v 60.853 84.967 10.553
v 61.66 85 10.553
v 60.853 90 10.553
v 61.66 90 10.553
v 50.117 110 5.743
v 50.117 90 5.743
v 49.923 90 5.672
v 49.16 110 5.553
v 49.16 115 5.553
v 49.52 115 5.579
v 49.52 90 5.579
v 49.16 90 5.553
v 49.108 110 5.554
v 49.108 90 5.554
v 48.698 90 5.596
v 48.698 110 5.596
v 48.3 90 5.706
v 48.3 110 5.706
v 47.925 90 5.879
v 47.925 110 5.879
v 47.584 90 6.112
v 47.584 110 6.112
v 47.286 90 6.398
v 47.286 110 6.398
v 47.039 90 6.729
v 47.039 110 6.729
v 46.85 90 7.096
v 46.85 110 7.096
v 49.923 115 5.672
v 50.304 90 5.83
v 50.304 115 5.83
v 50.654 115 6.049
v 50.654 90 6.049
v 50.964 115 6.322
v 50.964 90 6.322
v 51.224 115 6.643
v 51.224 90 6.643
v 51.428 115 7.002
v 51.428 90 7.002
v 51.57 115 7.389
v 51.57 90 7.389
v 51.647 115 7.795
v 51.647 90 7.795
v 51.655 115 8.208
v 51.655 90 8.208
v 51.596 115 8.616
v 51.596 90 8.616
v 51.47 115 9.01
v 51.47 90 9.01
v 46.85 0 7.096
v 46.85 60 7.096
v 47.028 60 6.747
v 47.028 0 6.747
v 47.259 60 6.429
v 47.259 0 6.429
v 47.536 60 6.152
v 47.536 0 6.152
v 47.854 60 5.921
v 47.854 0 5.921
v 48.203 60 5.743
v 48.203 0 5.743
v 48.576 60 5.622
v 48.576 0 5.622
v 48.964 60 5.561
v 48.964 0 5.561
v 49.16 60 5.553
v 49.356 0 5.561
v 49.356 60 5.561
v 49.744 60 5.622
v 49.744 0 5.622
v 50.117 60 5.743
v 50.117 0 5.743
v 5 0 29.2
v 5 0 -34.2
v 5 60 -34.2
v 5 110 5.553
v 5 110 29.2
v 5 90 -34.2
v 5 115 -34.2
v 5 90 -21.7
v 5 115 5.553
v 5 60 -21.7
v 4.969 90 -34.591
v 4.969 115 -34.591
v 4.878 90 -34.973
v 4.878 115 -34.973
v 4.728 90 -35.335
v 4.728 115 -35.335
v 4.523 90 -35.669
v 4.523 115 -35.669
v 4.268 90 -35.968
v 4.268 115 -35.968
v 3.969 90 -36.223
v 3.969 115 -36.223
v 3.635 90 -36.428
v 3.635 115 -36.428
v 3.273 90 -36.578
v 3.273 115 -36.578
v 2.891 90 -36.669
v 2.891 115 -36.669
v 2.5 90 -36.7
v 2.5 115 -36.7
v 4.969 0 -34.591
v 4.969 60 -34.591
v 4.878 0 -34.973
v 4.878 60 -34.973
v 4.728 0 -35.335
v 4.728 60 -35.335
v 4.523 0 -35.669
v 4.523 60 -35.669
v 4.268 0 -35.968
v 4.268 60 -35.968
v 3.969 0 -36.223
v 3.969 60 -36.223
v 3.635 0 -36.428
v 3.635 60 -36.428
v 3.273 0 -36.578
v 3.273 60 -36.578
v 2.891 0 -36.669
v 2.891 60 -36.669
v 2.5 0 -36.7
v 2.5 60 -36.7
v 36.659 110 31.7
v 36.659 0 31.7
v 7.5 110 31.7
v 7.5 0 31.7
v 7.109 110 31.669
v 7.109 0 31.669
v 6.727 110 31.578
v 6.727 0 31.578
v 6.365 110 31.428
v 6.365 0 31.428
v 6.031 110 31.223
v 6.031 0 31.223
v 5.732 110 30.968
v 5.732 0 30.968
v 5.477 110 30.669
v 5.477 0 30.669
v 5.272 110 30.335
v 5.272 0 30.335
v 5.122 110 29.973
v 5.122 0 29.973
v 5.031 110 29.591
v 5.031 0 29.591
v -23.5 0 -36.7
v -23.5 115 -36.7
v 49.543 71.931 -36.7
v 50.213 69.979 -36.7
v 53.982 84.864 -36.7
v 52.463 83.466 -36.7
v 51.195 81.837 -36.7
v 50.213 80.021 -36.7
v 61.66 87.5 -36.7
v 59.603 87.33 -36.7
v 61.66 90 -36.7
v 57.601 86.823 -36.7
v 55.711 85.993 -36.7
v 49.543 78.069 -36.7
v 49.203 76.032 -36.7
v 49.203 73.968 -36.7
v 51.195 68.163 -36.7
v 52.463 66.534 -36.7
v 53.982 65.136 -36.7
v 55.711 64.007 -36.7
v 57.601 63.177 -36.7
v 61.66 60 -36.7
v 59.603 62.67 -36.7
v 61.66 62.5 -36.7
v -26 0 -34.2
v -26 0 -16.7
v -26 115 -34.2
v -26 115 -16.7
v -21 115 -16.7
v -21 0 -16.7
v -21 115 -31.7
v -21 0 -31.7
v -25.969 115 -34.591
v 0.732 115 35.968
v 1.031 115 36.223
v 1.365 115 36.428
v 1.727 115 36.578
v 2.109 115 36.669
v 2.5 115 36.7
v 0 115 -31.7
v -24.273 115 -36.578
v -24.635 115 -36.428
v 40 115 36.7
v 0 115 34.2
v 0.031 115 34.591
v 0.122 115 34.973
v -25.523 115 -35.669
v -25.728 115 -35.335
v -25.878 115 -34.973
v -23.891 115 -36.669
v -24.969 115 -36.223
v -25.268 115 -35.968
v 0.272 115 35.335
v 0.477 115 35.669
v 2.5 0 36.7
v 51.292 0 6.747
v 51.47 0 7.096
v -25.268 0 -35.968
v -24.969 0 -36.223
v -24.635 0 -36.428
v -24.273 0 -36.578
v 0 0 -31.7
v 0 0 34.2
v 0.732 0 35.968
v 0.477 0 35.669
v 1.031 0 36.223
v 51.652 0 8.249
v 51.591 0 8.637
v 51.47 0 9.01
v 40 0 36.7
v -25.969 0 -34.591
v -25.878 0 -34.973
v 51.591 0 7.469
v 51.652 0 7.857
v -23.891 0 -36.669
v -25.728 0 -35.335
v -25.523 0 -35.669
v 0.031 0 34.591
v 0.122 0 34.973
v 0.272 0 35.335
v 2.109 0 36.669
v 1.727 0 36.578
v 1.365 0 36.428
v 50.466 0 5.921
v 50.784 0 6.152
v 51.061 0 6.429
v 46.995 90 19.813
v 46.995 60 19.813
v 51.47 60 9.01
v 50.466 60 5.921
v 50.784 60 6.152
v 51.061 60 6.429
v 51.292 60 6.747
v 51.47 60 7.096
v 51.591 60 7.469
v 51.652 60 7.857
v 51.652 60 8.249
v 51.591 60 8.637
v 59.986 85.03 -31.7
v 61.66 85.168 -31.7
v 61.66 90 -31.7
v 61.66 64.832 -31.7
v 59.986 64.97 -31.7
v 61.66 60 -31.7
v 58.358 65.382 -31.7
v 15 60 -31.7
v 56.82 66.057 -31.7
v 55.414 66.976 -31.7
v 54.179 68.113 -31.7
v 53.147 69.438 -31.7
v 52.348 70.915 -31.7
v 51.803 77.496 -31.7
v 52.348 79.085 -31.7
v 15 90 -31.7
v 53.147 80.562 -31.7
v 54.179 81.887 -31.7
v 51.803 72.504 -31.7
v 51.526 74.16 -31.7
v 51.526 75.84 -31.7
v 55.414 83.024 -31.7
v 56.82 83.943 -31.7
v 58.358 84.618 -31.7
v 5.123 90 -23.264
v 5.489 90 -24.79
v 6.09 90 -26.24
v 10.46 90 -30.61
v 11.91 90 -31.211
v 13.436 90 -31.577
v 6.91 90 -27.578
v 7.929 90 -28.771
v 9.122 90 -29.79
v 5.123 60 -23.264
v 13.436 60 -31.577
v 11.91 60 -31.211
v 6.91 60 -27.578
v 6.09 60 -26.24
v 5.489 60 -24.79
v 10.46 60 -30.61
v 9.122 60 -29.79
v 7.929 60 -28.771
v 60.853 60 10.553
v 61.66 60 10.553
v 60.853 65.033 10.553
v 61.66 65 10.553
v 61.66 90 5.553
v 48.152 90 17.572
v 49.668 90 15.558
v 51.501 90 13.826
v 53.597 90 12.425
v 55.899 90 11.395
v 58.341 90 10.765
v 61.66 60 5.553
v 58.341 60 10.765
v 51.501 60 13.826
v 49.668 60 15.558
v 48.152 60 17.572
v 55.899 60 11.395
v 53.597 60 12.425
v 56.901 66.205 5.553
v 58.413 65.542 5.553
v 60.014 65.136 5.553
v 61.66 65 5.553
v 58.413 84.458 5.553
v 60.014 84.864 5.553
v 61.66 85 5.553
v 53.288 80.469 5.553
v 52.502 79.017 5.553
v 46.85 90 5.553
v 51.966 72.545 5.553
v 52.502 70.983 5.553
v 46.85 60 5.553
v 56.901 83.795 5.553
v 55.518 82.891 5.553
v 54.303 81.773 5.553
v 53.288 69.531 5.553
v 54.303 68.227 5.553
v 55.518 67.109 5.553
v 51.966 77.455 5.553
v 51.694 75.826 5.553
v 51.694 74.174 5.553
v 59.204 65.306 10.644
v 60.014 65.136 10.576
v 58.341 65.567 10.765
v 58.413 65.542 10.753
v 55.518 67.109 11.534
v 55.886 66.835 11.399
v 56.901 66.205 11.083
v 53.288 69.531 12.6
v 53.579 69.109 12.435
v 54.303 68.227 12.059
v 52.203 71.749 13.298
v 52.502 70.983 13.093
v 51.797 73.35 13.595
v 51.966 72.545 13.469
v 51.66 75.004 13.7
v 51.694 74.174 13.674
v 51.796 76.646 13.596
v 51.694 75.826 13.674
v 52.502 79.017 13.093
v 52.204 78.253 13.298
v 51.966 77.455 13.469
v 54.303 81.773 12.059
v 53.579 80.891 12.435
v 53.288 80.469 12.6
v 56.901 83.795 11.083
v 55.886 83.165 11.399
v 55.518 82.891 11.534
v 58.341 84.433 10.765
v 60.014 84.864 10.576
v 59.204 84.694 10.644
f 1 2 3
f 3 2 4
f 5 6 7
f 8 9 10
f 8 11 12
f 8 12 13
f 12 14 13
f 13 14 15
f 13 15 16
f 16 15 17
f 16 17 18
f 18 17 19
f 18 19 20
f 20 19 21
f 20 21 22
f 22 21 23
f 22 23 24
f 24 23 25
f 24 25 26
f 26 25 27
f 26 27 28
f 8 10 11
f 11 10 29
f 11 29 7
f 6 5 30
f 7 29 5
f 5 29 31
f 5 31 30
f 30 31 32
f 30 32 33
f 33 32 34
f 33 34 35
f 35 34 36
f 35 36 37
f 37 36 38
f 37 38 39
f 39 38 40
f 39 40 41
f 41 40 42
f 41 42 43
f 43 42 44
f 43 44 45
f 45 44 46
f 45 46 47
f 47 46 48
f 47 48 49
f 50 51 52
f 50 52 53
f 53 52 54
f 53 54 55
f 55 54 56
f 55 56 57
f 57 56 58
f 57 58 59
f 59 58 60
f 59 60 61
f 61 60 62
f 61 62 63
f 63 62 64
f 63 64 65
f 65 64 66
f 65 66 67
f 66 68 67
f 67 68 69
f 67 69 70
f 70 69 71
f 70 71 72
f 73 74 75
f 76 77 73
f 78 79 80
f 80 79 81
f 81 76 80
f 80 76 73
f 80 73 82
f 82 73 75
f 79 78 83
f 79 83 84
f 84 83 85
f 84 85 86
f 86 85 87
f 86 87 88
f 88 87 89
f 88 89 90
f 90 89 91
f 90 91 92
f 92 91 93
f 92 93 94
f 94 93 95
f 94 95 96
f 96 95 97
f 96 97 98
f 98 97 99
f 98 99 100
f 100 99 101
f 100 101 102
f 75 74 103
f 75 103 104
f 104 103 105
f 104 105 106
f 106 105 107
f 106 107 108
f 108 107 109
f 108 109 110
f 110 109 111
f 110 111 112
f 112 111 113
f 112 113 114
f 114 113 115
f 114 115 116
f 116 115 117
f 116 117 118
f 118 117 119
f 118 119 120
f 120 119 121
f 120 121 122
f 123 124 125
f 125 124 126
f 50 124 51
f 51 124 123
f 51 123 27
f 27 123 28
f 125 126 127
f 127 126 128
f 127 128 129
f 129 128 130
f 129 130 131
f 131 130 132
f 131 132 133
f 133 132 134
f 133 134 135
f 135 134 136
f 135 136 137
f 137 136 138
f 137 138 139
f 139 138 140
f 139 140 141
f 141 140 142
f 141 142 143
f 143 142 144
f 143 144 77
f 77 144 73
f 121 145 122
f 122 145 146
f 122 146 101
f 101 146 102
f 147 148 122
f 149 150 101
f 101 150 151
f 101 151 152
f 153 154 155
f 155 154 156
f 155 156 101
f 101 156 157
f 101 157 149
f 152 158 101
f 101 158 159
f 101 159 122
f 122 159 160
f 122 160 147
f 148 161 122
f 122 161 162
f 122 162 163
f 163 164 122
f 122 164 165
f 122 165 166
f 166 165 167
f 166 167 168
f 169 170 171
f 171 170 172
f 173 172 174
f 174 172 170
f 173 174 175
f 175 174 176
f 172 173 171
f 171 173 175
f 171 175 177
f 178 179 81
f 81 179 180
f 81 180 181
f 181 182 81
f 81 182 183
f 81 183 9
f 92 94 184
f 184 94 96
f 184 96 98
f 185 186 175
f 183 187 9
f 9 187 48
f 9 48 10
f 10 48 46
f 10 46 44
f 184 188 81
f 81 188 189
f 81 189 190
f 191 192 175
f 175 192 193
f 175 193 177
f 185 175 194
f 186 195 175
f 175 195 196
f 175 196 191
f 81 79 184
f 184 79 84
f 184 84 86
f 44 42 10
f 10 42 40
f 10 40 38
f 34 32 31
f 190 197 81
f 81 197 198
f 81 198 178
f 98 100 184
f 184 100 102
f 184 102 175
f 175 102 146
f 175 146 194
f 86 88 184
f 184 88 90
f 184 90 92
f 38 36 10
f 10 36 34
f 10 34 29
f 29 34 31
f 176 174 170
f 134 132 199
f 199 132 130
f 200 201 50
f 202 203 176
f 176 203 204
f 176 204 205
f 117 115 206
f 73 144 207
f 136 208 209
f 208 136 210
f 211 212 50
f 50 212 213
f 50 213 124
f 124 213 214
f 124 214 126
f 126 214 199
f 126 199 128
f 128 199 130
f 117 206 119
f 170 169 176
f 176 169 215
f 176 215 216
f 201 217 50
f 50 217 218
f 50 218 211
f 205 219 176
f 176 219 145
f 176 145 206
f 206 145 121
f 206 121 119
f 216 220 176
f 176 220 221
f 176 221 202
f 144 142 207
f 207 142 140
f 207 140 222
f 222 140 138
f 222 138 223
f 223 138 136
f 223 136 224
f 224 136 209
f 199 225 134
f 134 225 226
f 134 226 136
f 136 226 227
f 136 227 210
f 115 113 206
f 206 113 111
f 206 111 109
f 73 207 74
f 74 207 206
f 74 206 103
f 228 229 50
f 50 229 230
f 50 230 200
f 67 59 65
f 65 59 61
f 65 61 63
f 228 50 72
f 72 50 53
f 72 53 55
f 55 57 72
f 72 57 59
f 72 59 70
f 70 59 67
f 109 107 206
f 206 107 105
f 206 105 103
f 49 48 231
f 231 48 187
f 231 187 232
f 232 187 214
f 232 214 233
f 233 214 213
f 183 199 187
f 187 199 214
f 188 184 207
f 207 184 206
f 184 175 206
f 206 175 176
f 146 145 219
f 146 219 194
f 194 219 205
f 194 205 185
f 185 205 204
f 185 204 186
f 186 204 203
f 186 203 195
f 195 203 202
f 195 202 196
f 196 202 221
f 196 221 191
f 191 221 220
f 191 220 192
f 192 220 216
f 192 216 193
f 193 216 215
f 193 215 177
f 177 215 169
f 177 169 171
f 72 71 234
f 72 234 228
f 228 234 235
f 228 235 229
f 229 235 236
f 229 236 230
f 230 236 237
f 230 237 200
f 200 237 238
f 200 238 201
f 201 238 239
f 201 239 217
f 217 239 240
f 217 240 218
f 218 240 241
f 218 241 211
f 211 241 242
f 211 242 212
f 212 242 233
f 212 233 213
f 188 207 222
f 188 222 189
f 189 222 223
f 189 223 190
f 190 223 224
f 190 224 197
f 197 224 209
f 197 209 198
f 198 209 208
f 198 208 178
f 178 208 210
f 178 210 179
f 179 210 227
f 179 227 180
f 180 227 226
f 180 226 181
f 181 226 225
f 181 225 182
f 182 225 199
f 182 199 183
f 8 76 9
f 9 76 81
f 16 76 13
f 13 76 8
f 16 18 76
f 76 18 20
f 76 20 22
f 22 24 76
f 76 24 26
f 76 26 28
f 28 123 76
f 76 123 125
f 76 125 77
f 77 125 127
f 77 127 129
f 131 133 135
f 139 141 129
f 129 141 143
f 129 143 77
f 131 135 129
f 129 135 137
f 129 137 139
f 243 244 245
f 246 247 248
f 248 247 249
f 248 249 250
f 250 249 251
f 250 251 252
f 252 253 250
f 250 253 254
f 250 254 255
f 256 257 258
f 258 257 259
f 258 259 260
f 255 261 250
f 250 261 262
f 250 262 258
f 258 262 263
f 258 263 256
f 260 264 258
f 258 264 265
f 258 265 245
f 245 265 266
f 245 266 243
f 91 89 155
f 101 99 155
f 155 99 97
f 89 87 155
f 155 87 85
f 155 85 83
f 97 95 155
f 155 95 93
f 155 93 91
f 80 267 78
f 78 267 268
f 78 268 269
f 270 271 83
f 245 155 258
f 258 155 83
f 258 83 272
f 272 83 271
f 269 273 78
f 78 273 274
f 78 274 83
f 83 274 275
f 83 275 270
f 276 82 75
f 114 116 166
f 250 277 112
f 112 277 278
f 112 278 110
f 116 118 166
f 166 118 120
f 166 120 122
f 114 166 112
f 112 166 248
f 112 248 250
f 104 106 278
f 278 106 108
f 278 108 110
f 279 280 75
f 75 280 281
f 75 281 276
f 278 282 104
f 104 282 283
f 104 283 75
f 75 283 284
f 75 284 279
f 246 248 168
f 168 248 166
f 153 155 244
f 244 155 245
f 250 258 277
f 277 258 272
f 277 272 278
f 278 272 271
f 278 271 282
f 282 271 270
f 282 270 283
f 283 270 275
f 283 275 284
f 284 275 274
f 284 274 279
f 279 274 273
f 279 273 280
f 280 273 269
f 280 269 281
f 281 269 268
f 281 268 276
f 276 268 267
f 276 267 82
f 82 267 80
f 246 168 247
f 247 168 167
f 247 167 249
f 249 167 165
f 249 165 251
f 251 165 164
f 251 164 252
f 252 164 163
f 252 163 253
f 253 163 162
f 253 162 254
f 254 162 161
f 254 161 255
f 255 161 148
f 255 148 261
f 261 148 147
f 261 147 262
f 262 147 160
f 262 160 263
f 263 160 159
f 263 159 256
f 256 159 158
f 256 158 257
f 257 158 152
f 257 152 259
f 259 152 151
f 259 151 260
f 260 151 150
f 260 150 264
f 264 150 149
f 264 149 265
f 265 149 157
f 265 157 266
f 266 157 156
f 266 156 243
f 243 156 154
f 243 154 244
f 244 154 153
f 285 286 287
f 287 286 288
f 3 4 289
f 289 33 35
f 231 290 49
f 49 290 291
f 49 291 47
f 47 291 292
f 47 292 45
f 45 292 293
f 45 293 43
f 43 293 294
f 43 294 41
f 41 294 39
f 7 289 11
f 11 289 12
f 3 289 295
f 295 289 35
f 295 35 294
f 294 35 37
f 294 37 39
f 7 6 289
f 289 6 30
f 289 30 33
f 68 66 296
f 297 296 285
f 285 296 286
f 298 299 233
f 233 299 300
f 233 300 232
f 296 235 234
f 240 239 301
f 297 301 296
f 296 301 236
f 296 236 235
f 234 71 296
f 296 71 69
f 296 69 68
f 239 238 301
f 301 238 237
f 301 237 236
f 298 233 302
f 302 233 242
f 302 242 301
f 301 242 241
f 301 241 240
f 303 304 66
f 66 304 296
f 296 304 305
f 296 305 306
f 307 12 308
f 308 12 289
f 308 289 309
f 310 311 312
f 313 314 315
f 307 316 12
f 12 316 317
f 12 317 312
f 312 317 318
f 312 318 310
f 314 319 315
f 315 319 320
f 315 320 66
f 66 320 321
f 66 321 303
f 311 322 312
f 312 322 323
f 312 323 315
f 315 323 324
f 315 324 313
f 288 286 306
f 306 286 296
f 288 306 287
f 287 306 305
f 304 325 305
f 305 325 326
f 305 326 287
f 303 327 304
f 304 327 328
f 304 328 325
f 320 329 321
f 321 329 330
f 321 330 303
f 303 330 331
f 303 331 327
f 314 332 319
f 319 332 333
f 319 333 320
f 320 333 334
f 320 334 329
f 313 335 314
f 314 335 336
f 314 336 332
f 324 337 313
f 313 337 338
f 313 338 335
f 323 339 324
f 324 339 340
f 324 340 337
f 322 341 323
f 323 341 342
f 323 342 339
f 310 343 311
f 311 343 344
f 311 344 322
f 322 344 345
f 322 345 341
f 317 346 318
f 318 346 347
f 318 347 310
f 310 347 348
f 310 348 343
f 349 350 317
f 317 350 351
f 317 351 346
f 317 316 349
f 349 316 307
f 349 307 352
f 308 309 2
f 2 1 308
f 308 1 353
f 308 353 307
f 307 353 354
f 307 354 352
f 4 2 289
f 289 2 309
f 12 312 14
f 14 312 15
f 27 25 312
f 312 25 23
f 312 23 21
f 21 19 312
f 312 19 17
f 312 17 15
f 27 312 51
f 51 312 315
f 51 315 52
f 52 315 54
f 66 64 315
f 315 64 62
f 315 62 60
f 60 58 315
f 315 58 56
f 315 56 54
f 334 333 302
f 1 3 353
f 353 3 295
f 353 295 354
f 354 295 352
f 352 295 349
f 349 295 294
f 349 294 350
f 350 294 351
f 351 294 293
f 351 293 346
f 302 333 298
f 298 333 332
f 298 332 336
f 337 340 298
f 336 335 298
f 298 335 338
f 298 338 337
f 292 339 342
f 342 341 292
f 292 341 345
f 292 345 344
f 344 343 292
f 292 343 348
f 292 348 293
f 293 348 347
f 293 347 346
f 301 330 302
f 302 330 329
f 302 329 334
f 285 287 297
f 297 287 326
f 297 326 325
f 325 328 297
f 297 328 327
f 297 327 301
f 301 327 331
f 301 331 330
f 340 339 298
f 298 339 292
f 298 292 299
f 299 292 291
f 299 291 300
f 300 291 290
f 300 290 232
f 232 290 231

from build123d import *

# Parameters (mm, degrees)
EXTRUDE_1_DEPTH  = 115
FILLET_5_R       = 2.5
FILLET_6_R       = 2.5
FILLET_8_R       = 2.5
FILLET_10_R      = 2.5
FILLET_11_R      = 2.5
EXTRUDE_2_DEPTH  = 5
EXTRUDE_3_DEPTH  = 5
FILLET_12_R      = 10
CHAMFER_2_SIZE   = 5.361267301
CHAMFER_2_SIZE_2 = 2.5
EXTRUDE_5_DEPTH  = 5
FILLET_13_R      = 15


# Some blends are built 0.0001 mm under size
with BuildPart() as part:
    # ｽｹｯﾁ1 → ﾎﾞｽ - 押し出し1 (new body)
    with BuildSketch(Plane(origin=(0, 0, 0), x_dir=(1, 0, 0), z_dir=(0, 1, 0))):
        Polygon((47.807009209, -4.786582838), (36.65910681, -31.7), (5, -31.7), (5, 36.7), (-26, 36.7), (-26, 16.7), (-21, 16.7), (-21, 31.7), (0, 31.7), (0, -36.7), (40, -36.7), (52.426406871, -6.7), align=None)
    extrude(amount=EXTRUDE_1_DEPTH)

    # ﾌｨﾚｯﾄ5
    fillet_5_edges = [part.edges().sort_by_distance(p)[0] for p in [
        (-26, 57.5, -36.7),
    ]]
    fillet(fillet_5_edges, radius=FILLET_5_R)

    # ﾌｨﾚｯﾄ6
    fillet_6_edges = [part.edges().sort_by_distance(p)[0] for p in [
        (5, 57.5, -36.7),
    ]]
    fillet(fillet_6_edges, radius=FILLET_6_R)

    # ﾌｨﾚｯﾄ8
    fillet_8_edges = [part.edges().sort_by_distance(p)[0] for p in [
        (52.426406871, 57.5, 6.7),
        (47.807009209, 57.5, 4.786582838),
    ]]
    fillet(fillet_8_edges, radius=FILLET_8_R - 0.0001)  # a hair under: the kernel refuses the full size

    # ﾌｨﾚｯﾄ10
    fillet_10_edges = [part.edges().sort_by_distance(p)[0] for p in [
        (0, 57.5, 36.7),
    ]]
    fillet(fillet_10_edges, radius=FILLET_10_R)

    # ﾌｨﾚｯﾄ11
    fillet_11_edges = [part.edges().sort_by_distance(p)[0] for p in [
        (5, 57.5, 31.7),
    ]]
    fillet(fillet_11_edges, radius=FILLET_11_R)

    # ｽｹｯﾁ2 → ﾎﾞｽ - 押し出し2 (add)
    with BuildSketch(Plane(origin=(0, 115, 0), x_dir=(1, 0, 0), z_dir=(0, 1, 0))):
        with BuildLine():
            Line((49.159999459, -5.55299025), (40, -5.55299025))
            Line((40, -5.55299025), (5, -5.55299025))
            Line((5, -5.55299025), (5, -36.7))
            Line((5, -36.7), (40, -36.7))
            Line((40, -36.7), (51.46969829, -9.009698831))
            ThreePointArc((51.46969829, -9.009698831), (51.23867349, -6.664064668), (49.159999459, -5.55299025))
        make_face()
    extrude(amount=-EXTRUDE_2_DEPTH)

    # ｽｹｯﾁ3 → ﾎﾞｽ - 押し出し3 (add)
    with BuildSketch(Plane(origin=(0, 0, -36.7), x_dir=(-1, 0, 0), z_dir=(0, 0, -1))):
        with BuildLine():
            Line((6.851817904, 90), (-51.659999459, 90))
            Line((-51.659999459, 90), (-61.659999459, 90))
            Line((-61.659999459, 90), (-61.659999459, 85))
            ThreePointArc((-61.659999459, 85), (-51.659999459, 75), (-61.659999459, 65))
            Line((-61.659999459, 65), (-61.659999459, 60))
            Line((-61.659999459, 60), (-51.659999459, 60))
            Line((-51.659999459, 60), (6.851817904, 60))
            Line((6.851817904, 60), (6.851817904, 90))
        make_face()
    extrude(amount=-EXTRUDE_3_DEPTH)

    # ﾌｨﾚｯﾄ12
    fillet_12_edges = [part.edges().sort_by_distance(p)[0] for p in [
        (5, 75, -31.7),
    ]]
    fillet(fillet_12_edges, radius=FILLET_12_R)

    # 面取り2
    # the kernel refuses this chamfer: 5.361267301, 2.5 mm, written as the material it takes off along each edge
    with BuildSketch(Plane(origin=(61.659999459, 75, -36.7), x_dir=(0.9839382263976153, 0.1785092900482071, 0), z_dir=(0.1785092900482071, -0.9839382263976153, 0))) as chamfer_2_piece_1:
        Polygon((10, CHAMFER_2_SIZE), (10 + CHAMFER_2_SIZE_2, 0), (10, 0), align=None)
    revolve(axis=Axis((61.659999459, 75, -36.7), (0, 0, 1)), revolution_arc=339.434115604, mode=Mode.SUBTRACT)

    # ｽｹｯﾁ4 → ﾎﾞｽ - 押し出し5 (add)
    with BuildSketch(Plane(origin=(0, 0, 5.55299025), x_dir=(-1, 0, 0), z_dir=(0, 0, -1))):
        with BuildLine():
            Line((-46.850300628, 90), (-51.659999459, 90))
            Line((-51.659999459, 90), (-61.659999459, 90))
            Line((-61.659999459, 90), (-61.659999459, 85))
            ThreePointArc((-61.659999459, 85), (-51.659999459, 75), (-61.659999459, 65))
            Line((-61.659999459, 65), (-61.659999459, 60))
            Line((-61.659999459, 60), (-51.659999459, 60))
            Line((-51.659999459, 60), (-46.850300628, 60))
            Line((-46.850300628, 60), (-46.850300628, 90))
        make_face()
    extrude(amount=-EXTRUDE_5_DEPTH)

    # ﾌｨﾚｯﾄ13
    # the kernel refuses this fillet: 15 mm, written as the material it adds along each edge
    with BuildSketch(Plane(origin=(50.830446054, 90, 10.55299025), x_dir=(-0.3826834323650874, 0, 0.9238795325112876), z_dir=(0, -1, 0))) as fillet_13_piece_1_section:
        with BuildLine():
            CenterArc((FILLET_13_R * 0.668178637919, -FILLET_13_R), FILLET_13_R, 90, 67.5)
            Line((-FILLET_13_R * 0.255700894592, -FILLET_13_R * 0.617316567635), (0, 0))
            Line((0, 0), (FILLET_13_R * 0.668178637919, 0))
        make_face()
    fillet_13_piece_1 = extrude(amount=30, mode=Mode.PRIVATE)
    fillet_13_piece_1 = fillet_13_piece_1 - Plane(origin=(61.659999459, 75, 12.967680369), x_dir=(0, 1, 0), z_dir=(0, 0, -1)) * Cylinder(10, 101, mode=Mode.PRIVATE)
    add(fillet_13_piece_1)


solid = part.part
